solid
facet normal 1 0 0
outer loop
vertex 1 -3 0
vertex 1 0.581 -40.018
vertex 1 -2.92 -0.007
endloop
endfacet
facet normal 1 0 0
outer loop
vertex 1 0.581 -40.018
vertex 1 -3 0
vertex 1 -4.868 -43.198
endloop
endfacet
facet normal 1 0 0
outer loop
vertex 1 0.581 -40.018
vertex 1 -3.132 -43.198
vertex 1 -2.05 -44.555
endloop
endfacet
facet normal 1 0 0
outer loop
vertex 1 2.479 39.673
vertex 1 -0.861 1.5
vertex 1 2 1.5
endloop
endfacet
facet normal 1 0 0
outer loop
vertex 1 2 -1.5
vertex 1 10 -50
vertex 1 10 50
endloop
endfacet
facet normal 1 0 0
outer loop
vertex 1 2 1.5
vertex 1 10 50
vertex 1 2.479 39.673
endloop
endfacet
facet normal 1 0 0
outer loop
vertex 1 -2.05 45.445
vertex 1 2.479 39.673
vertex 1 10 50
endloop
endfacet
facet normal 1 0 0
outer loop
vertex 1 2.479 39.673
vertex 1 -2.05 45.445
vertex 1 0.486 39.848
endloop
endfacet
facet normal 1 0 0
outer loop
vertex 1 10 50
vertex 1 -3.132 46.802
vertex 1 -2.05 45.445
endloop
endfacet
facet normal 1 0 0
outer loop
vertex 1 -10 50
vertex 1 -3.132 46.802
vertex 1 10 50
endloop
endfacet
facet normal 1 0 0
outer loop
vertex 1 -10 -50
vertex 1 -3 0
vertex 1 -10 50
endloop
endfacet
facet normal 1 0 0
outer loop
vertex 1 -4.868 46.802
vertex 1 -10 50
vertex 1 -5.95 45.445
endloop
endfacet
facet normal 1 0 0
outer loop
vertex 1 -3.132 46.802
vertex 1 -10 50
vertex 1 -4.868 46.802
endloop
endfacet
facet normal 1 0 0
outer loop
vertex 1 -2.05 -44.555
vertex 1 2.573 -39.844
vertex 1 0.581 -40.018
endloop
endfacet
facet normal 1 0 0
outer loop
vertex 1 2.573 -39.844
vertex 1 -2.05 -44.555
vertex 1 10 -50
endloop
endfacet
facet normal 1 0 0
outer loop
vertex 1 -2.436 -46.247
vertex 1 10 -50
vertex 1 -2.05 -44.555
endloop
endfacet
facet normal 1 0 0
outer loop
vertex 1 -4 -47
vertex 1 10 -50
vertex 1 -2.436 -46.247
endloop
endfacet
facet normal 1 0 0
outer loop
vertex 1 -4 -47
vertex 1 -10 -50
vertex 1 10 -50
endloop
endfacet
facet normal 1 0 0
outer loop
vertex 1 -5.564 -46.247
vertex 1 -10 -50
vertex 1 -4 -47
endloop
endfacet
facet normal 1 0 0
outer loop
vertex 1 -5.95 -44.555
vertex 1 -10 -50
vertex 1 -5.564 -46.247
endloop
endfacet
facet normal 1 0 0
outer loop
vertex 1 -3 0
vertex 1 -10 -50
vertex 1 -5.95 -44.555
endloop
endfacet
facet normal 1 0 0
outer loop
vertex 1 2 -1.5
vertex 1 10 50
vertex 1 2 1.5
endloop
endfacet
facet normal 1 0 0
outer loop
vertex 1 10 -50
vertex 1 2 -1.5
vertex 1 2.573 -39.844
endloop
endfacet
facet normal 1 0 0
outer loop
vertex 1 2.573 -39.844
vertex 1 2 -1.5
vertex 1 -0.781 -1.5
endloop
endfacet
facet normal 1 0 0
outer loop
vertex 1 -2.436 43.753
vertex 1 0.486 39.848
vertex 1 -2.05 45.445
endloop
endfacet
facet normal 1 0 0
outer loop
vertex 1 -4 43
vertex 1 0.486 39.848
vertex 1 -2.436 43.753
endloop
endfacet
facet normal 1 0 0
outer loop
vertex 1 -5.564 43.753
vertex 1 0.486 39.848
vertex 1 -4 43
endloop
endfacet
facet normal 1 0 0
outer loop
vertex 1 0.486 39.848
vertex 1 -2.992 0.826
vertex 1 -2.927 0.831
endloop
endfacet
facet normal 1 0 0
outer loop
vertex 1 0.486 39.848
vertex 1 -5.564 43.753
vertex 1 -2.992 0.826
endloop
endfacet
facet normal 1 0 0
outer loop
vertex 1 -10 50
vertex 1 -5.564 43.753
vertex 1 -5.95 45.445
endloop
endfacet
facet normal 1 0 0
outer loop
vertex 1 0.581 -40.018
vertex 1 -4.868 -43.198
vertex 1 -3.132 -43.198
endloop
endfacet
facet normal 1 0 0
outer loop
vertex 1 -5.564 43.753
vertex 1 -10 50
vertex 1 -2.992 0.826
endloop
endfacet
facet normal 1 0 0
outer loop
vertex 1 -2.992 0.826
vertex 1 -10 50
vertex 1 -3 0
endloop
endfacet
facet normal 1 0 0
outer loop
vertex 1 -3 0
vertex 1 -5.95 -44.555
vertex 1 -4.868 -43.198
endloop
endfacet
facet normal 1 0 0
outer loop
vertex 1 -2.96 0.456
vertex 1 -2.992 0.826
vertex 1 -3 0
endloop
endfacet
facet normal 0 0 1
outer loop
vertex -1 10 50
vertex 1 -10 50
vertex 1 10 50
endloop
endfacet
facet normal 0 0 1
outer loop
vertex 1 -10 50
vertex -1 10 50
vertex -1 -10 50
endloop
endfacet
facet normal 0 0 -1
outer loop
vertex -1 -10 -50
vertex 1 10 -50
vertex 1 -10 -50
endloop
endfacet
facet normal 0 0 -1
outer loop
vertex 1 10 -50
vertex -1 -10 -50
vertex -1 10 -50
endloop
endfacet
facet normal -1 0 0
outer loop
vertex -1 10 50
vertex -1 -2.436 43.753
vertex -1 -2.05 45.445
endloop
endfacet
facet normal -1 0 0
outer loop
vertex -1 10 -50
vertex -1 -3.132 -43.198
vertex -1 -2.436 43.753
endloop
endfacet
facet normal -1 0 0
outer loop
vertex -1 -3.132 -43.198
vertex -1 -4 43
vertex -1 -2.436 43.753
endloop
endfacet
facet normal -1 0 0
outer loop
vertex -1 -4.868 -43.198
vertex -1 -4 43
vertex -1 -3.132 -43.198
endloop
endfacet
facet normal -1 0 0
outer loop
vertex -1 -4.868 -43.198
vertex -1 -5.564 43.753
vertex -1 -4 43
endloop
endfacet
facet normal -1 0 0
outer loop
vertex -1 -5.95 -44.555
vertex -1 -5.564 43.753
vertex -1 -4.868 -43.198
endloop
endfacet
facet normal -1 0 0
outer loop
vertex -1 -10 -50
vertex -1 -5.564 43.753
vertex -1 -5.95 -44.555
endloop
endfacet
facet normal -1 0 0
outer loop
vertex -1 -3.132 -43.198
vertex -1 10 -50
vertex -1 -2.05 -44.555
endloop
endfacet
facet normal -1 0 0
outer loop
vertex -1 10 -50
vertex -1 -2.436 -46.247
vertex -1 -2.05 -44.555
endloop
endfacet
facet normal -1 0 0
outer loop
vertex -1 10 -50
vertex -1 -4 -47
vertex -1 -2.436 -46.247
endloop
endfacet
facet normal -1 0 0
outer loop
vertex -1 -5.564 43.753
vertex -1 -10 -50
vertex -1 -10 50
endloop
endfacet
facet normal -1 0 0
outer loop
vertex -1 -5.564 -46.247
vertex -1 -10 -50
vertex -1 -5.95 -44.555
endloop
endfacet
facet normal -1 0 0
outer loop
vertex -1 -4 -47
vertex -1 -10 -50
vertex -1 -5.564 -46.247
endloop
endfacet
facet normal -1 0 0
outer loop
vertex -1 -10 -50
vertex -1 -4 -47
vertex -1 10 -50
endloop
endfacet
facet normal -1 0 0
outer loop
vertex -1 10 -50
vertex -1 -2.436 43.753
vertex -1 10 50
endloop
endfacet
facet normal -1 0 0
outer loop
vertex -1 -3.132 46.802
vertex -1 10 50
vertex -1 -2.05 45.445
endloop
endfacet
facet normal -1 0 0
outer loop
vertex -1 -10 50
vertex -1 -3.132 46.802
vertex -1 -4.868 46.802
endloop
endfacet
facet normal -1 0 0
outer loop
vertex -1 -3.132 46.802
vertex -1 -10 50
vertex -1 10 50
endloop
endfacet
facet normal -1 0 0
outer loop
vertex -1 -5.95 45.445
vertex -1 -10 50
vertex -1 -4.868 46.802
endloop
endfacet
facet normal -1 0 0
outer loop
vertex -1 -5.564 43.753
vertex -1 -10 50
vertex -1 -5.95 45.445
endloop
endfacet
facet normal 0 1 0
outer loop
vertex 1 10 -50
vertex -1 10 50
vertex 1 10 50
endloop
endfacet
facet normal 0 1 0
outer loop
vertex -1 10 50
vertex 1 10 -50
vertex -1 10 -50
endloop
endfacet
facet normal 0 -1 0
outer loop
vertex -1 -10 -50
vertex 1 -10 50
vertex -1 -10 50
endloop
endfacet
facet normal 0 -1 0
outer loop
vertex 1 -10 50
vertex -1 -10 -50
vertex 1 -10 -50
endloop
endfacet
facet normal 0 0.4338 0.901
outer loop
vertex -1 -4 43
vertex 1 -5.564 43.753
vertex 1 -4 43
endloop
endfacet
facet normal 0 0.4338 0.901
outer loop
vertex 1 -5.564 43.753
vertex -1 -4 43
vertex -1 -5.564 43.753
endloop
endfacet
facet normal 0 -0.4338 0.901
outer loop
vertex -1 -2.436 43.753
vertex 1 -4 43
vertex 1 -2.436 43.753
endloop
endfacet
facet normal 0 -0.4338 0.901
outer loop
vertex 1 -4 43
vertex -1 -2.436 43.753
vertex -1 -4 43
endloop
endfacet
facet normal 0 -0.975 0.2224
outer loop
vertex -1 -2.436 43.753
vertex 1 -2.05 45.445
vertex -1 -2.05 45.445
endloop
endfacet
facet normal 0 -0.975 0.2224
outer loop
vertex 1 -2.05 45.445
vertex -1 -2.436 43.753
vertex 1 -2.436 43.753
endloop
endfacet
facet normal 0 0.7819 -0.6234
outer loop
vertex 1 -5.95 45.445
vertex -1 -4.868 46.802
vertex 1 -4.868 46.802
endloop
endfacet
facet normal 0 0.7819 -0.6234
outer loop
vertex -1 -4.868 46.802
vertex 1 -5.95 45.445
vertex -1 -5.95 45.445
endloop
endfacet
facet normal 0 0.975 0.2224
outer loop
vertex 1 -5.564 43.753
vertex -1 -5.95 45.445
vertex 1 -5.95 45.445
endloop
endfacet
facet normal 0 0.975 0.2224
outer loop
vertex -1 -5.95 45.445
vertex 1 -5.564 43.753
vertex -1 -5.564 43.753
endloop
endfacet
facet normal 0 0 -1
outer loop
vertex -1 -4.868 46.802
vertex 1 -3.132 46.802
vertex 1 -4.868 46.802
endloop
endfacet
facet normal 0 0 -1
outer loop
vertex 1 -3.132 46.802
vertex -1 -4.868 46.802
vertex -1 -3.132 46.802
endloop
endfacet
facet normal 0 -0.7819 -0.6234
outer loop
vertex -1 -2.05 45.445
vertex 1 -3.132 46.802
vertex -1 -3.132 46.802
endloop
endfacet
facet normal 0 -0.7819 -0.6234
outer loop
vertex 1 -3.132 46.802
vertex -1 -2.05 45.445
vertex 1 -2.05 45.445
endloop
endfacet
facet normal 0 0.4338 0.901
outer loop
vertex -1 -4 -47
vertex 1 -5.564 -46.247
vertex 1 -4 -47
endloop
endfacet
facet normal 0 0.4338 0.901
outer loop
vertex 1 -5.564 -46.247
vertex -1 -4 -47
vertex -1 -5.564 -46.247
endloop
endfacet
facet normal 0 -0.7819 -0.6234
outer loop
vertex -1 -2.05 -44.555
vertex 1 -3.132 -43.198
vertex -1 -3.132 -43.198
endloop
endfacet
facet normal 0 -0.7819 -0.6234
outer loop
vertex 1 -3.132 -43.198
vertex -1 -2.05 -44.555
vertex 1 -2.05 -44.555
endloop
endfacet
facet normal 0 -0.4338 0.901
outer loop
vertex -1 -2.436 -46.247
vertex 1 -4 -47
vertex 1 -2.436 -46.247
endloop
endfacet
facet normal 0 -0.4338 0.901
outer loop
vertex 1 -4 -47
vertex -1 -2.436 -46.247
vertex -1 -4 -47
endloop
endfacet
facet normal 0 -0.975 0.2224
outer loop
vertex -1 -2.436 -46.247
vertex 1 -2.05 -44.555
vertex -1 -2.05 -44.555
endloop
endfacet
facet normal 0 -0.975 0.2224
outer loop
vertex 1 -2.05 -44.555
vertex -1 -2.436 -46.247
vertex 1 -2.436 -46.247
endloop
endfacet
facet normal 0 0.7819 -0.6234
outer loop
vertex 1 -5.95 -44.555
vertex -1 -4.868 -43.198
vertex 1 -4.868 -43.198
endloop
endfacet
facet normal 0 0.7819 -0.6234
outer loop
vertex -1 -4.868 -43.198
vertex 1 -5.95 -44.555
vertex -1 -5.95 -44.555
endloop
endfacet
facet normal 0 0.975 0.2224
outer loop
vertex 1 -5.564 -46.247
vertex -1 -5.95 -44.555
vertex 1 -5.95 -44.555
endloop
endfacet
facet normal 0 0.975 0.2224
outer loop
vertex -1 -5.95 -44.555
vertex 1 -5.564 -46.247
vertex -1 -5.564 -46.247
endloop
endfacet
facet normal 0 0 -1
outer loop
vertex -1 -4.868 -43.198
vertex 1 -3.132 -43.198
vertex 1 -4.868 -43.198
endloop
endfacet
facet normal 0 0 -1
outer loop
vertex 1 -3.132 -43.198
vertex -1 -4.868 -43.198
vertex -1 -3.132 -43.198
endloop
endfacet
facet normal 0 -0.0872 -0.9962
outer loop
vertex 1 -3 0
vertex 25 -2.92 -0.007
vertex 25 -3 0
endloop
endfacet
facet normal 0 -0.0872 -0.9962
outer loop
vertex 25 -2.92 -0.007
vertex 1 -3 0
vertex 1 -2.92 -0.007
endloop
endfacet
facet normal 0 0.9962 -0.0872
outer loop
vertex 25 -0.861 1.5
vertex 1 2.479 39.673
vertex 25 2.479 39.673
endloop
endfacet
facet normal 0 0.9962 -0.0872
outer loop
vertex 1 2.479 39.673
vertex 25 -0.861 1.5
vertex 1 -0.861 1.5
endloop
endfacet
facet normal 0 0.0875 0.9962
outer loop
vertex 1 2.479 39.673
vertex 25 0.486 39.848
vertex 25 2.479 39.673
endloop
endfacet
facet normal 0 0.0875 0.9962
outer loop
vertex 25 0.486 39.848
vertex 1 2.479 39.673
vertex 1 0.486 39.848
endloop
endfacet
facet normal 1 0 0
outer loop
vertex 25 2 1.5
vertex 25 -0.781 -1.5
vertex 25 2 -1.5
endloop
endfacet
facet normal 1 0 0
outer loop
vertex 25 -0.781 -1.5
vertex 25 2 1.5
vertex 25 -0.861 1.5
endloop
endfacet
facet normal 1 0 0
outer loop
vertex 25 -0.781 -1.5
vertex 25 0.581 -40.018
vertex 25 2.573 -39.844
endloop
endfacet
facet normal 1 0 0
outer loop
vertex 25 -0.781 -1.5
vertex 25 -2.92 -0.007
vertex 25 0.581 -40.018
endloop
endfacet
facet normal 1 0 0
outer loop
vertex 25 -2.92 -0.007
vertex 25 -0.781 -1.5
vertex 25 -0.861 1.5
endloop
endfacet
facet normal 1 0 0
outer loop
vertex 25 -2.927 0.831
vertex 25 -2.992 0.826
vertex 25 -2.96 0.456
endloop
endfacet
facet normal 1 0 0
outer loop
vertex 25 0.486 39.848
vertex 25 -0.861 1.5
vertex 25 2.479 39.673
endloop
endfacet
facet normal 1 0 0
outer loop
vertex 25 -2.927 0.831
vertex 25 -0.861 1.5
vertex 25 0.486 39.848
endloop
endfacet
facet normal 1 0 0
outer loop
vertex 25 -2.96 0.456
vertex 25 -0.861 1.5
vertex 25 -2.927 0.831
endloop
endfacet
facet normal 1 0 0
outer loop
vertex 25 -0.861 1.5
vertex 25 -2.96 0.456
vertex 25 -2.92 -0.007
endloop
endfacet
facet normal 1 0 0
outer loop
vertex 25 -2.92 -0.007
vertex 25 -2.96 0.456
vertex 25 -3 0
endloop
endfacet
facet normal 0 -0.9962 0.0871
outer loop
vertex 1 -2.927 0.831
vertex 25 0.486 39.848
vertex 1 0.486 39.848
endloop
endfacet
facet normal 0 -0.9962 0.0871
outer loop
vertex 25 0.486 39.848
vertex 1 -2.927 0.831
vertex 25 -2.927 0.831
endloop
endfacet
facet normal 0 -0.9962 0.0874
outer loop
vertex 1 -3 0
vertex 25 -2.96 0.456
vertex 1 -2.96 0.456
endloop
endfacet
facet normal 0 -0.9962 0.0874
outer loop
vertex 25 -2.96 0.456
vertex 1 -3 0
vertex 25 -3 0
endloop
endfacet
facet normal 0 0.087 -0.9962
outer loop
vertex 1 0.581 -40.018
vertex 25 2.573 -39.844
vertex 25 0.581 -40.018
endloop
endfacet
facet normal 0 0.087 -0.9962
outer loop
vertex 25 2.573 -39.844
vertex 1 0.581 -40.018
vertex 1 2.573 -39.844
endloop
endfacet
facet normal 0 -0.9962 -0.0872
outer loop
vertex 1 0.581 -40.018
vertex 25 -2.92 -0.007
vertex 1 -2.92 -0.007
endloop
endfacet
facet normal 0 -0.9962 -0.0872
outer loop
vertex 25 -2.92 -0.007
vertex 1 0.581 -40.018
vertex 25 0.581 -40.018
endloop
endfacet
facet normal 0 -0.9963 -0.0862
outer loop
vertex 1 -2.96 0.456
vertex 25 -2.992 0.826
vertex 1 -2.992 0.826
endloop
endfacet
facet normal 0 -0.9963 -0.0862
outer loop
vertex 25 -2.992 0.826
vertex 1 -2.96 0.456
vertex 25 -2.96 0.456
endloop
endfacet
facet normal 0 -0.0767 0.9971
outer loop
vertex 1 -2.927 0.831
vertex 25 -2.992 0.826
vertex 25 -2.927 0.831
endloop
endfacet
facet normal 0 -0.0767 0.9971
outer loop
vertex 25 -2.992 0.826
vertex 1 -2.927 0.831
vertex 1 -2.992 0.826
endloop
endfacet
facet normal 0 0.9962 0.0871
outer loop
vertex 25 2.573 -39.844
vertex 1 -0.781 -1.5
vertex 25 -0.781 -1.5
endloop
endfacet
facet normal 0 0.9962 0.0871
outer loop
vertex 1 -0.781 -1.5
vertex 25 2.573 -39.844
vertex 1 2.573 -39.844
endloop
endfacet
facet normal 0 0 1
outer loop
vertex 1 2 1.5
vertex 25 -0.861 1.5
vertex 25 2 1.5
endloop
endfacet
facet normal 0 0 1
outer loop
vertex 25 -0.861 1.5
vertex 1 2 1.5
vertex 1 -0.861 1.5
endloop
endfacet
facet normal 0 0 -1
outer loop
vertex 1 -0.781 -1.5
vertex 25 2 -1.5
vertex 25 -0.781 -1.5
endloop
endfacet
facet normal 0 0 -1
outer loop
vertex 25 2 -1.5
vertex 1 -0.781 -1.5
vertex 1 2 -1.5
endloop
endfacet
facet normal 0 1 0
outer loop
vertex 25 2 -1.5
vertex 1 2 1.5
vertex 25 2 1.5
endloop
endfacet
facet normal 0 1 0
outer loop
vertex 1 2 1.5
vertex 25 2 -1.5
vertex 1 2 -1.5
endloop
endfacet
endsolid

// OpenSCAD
difference() {
  cube([2, 20, 100], center = true);
  translate([0, -4, 45]) rotate([0,90,0]) cylinder(d=4, h=6, center = true);
  translate([0, -4, -45]) rotate([0,90,0]) cylinder(d=4, h=6, center = true);

} 

translate([0, -3, 0]) rotate([-5,0,0]) cube([25, 2, 40]);
translate([0, -1, 1]) rotate([-175,0,0]) cube([25, 2, 41]);
translate([0, -1, -1.5]) rotate([0,0,0]) cube([25, 3, 3]);
